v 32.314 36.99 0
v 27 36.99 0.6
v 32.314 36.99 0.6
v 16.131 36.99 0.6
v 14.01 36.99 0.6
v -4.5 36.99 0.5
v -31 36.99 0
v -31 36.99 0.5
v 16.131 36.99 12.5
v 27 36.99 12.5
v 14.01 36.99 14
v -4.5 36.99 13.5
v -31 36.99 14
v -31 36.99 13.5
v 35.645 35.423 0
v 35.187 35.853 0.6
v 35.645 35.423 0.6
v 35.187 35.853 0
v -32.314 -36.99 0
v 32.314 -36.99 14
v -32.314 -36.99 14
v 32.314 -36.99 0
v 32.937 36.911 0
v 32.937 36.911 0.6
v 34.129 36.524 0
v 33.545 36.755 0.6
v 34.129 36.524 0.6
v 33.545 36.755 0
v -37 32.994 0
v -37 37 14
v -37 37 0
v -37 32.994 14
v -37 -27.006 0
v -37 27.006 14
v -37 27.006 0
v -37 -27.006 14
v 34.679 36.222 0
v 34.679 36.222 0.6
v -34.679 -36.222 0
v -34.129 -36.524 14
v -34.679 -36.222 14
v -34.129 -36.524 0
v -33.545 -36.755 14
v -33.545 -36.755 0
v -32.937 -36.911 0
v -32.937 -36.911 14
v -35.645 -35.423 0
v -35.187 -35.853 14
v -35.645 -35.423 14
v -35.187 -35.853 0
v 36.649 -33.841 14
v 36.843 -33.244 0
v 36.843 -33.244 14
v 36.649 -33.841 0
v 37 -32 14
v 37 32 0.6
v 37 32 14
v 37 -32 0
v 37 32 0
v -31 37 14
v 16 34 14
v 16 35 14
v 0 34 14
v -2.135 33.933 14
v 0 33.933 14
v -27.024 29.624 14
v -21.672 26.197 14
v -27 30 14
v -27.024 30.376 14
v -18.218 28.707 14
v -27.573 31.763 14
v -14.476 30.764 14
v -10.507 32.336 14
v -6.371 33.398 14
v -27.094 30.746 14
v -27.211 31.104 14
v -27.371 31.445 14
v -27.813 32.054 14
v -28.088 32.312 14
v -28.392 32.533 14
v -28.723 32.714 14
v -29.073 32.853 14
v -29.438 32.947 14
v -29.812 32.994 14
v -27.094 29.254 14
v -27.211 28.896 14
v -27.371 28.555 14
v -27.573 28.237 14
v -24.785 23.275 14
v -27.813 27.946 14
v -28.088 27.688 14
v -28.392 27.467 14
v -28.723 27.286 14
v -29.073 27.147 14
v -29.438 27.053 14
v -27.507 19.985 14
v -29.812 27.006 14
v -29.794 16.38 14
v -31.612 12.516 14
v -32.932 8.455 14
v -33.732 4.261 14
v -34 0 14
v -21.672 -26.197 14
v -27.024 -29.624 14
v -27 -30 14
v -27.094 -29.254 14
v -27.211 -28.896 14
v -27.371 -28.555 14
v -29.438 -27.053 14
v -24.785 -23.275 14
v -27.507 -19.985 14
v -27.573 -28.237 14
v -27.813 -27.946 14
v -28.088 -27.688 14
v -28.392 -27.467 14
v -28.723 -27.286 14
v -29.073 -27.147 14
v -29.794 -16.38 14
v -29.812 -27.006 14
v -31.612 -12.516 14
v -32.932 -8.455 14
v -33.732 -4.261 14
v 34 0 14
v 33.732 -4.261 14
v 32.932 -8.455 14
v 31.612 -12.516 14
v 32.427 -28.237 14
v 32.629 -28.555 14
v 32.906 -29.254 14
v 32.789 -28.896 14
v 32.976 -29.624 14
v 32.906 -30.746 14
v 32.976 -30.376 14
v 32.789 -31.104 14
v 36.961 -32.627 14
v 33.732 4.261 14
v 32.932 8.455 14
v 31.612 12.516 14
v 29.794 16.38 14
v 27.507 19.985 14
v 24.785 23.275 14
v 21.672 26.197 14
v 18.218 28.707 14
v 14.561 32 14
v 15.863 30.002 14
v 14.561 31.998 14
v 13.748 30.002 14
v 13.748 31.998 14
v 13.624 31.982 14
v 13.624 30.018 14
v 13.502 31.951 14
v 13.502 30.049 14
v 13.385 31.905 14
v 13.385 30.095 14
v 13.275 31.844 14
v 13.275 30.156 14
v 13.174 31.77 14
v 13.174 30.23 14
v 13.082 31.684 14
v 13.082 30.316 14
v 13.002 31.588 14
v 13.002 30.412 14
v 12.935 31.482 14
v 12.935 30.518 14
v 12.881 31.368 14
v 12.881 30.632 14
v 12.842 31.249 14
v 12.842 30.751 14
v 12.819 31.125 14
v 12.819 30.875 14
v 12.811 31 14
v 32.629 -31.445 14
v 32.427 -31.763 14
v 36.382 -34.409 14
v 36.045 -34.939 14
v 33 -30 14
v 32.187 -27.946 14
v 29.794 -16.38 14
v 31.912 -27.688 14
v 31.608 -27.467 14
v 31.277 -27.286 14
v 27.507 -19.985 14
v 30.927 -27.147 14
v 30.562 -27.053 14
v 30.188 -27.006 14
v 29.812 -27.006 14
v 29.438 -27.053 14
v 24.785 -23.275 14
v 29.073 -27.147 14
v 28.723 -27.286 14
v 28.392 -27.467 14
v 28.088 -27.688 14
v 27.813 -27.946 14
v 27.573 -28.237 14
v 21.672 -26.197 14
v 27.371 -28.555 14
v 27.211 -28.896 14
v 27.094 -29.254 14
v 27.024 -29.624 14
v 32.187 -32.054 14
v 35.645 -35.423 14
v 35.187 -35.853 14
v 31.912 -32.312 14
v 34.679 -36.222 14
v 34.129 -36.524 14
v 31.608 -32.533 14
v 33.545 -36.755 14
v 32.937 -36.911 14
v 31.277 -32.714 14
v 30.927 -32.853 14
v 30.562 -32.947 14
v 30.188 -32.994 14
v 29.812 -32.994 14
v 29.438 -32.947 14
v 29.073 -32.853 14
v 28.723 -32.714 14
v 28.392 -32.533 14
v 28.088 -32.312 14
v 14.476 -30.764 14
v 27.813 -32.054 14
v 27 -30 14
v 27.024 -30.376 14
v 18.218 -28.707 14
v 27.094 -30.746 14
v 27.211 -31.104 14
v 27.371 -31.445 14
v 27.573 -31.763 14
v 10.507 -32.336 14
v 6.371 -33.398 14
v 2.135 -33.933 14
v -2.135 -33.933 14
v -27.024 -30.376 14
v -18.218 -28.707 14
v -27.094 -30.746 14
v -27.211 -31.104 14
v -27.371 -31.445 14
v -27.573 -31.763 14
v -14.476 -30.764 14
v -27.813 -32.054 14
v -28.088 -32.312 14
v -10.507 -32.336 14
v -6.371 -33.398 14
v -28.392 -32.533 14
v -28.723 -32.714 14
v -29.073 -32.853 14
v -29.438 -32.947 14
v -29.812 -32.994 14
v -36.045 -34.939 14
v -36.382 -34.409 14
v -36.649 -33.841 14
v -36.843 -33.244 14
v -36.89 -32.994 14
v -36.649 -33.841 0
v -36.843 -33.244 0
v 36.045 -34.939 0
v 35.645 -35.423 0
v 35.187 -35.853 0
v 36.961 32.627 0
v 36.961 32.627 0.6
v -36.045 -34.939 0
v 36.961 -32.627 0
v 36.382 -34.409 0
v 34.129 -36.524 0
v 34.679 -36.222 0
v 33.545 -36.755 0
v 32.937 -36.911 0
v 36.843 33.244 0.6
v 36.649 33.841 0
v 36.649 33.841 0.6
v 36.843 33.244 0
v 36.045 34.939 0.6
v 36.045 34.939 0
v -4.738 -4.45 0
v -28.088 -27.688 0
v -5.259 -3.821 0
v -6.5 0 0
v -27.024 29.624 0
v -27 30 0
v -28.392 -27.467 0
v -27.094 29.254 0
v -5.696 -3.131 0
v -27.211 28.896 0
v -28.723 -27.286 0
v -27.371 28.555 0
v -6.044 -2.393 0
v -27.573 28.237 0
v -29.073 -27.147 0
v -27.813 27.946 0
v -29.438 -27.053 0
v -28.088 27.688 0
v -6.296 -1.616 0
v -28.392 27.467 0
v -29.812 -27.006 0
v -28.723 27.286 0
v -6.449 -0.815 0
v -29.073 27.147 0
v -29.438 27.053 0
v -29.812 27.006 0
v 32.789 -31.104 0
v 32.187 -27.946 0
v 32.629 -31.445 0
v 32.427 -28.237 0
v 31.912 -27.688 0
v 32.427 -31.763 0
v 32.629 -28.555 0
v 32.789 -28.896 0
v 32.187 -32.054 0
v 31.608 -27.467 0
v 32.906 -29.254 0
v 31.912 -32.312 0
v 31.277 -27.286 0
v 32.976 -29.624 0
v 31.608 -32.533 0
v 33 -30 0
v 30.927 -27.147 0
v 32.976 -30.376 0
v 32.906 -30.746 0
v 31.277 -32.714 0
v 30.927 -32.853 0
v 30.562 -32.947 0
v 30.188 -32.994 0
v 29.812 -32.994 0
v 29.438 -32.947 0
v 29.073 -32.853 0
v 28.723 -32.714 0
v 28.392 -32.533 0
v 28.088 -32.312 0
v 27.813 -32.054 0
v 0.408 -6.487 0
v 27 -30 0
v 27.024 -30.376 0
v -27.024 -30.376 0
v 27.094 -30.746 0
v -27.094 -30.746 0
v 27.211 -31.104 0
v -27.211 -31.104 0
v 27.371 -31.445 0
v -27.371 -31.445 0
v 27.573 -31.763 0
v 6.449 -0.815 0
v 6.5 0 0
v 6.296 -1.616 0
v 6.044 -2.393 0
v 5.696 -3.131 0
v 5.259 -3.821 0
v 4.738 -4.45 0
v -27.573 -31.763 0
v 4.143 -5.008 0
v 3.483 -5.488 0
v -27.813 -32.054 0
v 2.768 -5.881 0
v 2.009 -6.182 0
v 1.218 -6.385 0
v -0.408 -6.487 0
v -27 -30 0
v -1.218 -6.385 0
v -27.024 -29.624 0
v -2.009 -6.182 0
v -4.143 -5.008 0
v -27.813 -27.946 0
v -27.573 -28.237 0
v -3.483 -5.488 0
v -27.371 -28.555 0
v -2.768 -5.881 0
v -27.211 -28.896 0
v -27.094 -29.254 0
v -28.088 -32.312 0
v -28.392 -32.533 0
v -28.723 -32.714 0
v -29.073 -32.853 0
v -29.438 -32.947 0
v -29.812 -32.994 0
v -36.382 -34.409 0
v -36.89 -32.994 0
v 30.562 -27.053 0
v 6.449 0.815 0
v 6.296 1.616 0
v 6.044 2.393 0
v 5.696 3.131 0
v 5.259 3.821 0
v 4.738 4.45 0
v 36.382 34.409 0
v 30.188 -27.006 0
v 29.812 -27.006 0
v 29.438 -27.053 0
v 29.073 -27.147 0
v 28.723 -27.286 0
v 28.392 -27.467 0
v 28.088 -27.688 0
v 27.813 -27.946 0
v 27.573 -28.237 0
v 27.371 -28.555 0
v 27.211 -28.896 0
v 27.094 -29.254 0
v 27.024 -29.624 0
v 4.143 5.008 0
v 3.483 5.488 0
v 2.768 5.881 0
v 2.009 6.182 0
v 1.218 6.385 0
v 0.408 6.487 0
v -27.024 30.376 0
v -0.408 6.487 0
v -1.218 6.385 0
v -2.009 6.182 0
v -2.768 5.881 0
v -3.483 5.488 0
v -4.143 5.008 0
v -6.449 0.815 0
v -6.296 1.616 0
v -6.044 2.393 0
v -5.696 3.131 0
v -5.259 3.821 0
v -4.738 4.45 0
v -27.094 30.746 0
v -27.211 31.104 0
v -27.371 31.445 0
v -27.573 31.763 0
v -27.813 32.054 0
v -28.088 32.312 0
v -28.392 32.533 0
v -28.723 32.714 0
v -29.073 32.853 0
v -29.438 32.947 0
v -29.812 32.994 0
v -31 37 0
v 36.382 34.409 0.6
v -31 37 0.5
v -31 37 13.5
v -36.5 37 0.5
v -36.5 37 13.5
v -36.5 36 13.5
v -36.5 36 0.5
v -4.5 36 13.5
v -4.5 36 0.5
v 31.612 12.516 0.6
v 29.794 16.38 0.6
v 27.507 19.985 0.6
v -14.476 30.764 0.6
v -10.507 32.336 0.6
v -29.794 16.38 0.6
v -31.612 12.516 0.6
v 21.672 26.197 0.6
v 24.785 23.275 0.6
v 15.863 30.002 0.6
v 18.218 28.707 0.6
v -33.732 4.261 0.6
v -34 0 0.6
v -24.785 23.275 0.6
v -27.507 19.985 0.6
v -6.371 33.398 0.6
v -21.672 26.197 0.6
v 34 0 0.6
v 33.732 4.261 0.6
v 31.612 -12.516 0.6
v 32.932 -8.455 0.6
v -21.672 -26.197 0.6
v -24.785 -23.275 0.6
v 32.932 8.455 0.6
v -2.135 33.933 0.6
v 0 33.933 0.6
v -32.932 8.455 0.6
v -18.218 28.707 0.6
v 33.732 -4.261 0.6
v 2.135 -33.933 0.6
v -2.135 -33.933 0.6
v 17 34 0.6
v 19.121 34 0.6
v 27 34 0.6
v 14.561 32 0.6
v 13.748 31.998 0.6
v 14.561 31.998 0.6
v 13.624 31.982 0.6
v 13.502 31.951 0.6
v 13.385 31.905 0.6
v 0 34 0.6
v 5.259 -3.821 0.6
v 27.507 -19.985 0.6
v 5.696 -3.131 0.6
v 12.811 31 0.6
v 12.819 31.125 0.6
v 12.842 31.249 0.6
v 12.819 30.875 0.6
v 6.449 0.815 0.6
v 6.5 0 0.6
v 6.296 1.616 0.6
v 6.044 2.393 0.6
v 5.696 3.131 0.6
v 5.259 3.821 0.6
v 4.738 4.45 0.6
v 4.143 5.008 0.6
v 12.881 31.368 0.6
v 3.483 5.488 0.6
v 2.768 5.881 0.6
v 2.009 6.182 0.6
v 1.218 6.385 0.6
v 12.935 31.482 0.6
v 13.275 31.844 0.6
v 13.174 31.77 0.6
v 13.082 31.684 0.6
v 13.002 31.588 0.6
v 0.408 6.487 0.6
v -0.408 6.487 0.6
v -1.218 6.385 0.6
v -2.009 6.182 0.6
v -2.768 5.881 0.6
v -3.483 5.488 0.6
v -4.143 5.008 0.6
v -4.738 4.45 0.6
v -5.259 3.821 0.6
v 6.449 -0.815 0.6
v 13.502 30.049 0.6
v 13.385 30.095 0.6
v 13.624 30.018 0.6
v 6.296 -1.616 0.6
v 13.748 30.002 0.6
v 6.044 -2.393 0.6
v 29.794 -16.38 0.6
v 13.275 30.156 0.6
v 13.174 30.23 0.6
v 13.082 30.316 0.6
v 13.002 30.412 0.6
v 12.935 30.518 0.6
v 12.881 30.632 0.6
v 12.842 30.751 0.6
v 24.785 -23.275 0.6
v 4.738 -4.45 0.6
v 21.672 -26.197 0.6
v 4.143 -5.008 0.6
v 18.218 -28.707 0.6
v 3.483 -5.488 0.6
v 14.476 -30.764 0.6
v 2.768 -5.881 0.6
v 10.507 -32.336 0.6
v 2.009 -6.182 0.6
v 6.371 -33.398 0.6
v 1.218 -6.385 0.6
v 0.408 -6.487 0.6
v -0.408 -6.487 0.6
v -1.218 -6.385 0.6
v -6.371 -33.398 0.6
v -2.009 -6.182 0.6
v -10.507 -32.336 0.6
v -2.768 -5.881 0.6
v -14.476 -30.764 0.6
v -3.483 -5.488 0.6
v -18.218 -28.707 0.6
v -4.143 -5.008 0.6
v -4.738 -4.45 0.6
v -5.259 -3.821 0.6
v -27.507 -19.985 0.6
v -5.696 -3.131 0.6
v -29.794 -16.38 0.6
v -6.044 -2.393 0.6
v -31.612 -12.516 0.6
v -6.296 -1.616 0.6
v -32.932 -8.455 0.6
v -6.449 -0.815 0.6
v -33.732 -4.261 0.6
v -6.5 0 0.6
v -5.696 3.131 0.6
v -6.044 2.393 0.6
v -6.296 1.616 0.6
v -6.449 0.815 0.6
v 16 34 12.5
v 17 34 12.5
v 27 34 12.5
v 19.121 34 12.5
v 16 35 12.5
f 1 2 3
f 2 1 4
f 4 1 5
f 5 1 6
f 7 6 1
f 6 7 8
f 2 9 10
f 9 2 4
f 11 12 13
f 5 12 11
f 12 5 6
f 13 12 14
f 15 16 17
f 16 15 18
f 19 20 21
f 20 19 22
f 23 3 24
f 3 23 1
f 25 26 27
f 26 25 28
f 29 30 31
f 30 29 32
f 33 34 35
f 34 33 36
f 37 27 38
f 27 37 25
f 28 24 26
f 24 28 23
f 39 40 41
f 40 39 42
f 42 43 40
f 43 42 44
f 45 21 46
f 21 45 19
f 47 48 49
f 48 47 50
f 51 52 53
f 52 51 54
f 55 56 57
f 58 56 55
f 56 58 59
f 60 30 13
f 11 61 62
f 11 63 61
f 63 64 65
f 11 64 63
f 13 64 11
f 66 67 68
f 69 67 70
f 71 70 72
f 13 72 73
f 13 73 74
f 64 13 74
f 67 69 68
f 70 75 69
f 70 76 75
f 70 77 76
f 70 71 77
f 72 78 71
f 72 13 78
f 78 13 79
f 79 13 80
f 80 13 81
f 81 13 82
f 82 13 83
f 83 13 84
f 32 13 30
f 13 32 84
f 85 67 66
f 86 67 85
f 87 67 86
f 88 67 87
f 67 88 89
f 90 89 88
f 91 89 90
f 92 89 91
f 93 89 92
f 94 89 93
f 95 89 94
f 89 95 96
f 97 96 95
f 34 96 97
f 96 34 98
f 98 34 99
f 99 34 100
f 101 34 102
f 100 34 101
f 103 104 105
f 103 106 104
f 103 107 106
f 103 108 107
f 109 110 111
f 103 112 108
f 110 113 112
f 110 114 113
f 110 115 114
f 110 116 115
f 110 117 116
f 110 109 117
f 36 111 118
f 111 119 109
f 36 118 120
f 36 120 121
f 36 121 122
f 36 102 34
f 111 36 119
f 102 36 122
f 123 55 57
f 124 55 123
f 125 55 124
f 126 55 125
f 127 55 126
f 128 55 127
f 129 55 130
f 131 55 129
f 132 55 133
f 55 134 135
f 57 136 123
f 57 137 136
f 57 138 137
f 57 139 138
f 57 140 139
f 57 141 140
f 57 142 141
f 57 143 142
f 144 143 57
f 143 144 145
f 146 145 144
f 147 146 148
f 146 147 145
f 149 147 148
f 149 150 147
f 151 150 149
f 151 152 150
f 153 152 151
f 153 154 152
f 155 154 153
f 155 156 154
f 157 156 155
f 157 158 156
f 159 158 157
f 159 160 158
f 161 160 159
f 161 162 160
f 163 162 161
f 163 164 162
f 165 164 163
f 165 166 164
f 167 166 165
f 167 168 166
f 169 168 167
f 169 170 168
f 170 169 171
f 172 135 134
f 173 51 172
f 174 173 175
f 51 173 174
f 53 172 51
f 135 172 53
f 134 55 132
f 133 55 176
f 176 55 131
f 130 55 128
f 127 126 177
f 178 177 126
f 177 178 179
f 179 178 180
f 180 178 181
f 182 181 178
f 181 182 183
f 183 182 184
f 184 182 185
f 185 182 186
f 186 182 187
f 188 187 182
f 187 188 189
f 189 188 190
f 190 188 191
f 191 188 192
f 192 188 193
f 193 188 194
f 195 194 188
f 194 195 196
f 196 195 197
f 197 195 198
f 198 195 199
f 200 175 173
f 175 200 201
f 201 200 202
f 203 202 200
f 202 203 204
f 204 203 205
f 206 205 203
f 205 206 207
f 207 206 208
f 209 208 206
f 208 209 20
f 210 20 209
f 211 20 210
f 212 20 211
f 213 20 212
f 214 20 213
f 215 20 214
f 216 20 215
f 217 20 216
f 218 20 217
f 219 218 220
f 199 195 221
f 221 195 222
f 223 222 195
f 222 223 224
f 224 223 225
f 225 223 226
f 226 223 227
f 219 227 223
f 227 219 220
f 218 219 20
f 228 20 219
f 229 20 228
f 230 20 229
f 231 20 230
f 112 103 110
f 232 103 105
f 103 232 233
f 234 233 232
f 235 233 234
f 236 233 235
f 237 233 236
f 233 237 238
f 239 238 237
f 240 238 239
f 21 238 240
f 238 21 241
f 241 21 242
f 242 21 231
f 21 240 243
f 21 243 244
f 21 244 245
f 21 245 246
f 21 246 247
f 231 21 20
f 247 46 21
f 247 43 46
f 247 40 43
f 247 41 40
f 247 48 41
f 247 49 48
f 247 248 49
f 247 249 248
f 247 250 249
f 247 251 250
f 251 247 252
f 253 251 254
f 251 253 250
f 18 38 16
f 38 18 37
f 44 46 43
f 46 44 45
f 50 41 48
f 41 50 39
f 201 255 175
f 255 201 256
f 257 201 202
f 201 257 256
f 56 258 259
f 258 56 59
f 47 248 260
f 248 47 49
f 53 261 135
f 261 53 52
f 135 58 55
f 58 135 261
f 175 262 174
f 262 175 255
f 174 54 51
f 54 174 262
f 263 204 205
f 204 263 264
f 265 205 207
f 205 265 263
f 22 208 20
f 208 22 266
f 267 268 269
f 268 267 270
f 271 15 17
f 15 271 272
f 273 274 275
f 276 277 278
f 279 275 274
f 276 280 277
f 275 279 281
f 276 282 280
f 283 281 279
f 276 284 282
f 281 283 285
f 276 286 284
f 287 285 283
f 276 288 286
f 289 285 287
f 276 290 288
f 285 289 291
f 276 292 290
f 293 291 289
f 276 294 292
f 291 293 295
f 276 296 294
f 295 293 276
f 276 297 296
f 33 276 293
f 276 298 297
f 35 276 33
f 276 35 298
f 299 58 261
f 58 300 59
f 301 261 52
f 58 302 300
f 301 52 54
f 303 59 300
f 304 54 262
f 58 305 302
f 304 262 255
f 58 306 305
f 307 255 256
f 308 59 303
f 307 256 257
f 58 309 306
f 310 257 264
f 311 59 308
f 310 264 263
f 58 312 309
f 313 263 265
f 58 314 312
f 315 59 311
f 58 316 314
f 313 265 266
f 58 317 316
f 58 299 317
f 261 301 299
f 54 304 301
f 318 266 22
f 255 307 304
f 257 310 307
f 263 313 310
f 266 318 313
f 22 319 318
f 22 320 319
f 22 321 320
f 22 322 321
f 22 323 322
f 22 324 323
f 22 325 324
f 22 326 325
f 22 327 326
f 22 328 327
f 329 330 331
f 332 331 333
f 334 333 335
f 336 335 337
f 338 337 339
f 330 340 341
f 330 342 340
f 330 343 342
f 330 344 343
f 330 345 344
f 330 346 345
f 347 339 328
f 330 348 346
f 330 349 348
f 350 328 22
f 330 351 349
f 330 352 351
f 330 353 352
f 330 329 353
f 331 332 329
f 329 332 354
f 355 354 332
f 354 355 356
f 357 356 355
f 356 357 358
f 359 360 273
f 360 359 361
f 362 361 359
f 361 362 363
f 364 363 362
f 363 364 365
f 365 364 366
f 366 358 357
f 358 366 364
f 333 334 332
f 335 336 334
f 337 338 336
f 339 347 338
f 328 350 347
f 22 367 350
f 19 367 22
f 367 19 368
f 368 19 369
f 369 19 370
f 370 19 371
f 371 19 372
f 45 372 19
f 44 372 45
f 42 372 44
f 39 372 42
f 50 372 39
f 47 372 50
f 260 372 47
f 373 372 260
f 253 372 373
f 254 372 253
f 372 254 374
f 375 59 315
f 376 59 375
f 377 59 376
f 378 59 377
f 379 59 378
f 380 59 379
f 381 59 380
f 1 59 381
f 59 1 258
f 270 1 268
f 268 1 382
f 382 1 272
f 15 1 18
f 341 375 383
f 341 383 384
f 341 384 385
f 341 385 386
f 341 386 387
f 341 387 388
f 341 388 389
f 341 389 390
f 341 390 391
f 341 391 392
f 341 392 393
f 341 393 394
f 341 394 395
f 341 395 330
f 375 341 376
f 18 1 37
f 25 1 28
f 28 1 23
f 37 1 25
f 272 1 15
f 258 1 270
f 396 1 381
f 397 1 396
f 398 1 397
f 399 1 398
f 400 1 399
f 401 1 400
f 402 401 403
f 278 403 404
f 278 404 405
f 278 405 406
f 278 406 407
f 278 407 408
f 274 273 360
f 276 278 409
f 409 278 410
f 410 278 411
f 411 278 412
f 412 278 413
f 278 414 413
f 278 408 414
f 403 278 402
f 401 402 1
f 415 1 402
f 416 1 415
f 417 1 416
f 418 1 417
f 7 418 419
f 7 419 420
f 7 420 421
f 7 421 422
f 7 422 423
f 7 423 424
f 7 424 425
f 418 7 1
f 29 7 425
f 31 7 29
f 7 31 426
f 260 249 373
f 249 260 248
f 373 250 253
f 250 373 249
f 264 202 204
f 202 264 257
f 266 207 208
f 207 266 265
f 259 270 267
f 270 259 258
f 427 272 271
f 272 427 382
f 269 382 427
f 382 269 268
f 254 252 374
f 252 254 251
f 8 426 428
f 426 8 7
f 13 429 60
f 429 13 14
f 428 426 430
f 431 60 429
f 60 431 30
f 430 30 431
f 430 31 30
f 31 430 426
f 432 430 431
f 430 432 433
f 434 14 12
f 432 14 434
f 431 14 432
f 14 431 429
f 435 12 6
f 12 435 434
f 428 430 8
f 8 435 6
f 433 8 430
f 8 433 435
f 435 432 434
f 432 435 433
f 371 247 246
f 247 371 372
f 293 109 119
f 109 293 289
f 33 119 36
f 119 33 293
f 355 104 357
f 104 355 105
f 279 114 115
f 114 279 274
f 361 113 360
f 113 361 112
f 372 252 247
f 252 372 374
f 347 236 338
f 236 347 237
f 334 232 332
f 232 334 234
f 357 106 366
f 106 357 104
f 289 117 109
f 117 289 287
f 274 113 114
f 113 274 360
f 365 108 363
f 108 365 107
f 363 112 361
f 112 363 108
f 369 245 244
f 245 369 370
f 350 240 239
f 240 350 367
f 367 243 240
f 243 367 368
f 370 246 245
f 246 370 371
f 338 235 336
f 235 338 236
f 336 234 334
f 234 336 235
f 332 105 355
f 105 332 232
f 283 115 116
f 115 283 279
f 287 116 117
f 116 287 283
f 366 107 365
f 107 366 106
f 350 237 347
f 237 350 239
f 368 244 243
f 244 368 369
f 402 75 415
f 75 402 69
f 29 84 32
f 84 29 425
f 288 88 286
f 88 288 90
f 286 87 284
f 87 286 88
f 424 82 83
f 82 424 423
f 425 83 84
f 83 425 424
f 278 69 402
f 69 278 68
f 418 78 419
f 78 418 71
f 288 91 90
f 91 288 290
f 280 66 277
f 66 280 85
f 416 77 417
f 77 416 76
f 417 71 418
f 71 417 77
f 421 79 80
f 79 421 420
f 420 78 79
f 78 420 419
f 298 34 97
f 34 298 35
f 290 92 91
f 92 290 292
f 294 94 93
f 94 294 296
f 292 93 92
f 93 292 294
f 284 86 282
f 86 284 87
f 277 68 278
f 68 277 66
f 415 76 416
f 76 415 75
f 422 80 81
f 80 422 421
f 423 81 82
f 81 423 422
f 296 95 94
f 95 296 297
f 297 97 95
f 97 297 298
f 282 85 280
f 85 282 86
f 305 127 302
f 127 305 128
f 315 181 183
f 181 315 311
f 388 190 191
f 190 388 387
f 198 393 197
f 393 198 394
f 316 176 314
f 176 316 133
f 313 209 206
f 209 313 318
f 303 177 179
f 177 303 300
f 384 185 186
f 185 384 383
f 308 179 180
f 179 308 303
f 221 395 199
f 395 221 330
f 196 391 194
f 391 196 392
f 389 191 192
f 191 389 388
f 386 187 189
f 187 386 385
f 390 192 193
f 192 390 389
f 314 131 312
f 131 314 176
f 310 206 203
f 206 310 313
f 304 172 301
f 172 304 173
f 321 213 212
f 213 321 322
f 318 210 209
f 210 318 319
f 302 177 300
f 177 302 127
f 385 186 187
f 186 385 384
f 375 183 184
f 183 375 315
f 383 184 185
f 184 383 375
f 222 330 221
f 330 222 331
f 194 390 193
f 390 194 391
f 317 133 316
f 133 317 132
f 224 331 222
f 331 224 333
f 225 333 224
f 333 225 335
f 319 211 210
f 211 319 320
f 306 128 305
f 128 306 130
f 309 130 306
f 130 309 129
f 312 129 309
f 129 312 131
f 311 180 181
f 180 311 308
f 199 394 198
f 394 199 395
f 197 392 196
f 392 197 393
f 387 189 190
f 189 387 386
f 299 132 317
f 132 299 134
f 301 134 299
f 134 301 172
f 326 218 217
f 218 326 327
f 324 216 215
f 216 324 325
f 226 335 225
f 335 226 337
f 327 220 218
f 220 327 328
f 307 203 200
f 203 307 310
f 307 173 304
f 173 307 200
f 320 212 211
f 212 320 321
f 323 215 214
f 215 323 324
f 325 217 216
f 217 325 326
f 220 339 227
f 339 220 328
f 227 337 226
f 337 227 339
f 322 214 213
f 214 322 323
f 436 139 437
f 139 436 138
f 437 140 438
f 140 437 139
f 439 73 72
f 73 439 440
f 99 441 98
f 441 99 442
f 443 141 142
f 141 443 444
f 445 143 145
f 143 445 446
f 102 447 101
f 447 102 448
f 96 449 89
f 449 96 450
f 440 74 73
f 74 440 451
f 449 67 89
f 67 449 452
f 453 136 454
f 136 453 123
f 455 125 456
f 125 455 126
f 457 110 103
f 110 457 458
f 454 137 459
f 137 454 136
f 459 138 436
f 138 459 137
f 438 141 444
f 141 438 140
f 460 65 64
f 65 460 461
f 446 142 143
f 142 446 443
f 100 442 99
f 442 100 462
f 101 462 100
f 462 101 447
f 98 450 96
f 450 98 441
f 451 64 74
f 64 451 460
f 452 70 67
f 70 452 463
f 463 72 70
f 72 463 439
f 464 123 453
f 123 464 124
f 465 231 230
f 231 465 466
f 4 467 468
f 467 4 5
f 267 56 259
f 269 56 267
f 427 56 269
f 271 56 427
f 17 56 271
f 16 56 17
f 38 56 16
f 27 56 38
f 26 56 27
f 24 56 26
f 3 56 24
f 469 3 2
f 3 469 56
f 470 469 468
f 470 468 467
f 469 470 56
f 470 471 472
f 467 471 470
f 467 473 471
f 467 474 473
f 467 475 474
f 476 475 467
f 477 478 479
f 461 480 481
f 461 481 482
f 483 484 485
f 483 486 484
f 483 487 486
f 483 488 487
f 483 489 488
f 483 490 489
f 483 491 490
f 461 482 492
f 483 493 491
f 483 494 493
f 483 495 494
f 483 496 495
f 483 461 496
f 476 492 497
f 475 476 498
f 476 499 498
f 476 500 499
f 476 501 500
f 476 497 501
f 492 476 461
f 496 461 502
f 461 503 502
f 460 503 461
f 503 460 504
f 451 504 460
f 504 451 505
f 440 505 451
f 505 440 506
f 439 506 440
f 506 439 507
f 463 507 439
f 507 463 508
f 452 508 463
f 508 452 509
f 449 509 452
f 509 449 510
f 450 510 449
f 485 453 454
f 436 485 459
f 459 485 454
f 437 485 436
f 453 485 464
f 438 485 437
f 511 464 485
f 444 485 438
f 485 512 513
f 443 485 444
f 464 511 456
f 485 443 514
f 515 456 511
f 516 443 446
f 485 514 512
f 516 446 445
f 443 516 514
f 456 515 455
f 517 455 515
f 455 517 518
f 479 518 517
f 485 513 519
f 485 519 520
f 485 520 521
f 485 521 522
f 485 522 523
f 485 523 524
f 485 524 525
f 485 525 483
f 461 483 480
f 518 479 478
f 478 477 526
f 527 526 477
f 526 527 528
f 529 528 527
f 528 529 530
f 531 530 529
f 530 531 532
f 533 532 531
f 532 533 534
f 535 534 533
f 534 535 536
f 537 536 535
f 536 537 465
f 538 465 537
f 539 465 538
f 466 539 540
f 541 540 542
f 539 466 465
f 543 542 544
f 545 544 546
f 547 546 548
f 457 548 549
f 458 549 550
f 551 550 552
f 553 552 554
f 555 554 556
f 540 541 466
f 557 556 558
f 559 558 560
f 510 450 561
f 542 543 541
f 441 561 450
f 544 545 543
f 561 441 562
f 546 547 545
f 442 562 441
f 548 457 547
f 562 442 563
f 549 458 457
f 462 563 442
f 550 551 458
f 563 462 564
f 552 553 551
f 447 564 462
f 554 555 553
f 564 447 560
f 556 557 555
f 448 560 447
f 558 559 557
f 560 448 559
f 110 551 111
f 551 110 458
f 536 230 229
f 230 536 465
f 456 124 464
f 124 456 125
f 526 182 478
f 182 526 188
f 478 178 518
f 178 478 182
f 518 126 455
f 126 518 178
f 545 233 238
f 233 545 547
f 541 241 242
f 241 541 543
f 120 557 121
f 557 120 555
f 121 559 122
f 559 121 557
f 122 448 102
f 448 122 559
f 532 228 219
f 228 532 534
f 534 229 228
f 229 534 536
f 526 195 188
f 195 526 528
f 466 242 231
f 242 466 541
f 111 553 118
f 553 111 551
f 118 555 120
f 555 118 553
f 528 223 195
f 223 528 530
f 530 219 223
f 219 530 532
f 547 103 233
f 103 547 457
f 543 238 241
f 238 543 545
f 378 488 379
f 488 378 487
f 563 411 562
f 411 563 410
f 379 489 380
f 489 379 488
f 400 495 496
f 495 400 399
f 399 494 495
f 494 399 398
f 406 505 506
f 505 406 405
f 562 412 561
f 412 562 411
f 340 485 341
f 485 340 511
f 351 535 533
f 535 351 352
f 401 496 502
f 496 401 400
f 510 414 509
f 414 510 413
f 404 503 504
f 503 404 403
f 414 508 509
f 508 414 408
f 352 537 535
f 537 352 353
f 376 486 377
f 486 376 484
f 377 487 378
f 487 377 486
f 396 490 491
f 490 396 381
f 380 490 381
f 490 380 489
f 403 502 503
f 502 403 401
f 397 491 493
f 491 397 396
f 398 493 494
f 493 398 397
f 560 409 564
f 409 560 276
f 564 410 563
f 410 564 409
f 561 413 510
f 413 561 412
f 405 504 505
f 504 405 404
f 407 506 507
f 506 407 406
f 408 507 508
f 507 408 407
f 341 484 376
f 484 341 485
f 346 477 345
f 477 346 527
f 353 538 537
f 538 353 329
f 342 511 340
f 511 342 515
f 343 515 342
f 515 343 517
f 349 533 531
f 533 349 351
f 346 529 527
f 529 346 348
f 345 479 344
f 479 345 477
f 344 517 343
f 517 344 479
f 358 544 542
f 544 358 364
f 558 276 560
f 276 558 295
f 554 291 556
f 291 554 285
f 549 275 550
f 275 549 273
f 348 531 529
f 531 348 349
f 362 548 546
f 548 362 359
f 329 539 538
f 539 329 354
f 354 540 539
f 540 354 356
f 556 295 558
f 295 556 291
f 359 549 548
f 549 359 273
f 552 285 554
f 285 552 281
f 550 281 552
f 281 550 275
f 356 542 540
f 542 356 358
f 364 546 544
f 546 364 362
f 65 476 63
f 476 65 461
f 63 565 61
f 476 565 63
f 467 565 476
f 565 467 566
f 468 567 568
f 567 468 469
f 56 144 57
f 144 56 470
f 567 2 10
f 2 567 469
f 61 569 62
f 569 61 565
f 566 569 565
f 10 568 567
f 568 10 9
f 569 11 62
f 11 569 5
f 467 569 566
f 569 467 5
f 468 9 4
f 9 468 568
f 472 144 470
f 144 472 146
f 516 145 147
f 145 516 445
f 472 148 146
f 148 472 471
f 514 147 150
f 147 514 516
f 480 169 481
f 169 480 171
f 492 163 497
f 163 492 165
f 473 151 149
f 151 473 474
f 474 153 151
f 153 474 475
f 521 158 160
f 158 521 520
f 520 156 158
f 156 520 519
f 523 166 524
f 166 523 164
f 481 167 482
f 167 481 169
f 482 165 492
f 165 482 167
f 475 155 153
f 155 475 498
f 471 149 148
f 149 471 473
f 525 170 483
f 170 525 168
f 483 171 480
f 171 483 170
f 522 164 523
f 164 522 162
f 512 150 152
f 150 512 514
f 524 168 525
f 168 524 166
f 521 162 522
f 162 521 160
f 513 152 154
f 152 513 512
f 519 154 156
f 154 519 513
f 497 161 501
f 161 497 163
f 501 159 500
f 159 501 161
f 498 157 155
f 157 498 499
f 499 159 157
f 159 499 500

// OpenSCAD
$fn = 50;


union() {
	difference() {
		union() {
			translate(v = [0, 0, 0]) {
				rotate(a = [0, 0, 0]) {
					hull() {
						translate(v = [-32.0000000000, 32.0000000000, 0]) {
							rotate(a = [0, 0, 0]) {
								translate(v = [0, 0, 0]) {
									rotate(a = [0, 0, 0]) {
										cylinder(h = 14, r = 5);
									}
								}
							}
						}
						translate(v = [32.0000000000, 32.0000000000, 0]) {
							rotate(a = [0, 0, 0]) {
								translate(v = [0, 0, 0]) {
									rotate(a = [0, 0, 0]) {
										cylinder(h = 14, r = 5);
									}
								}
							}
						}
						translate(v = [-32.0000000000, -32.0000000000, 0]) {
							rotate(a = [0, 0, 0]) {
								translate(v = [0, 0, 0]) {
									rotate(a = [0, 0, 0]) {
										cylinder(h = 14, r = 5);
									}
								}
							}
						}
						translate(v = [32.0000000000, -32.0000000000, 0]) {
							rotate(a = [0, 0, 0]) {
								translate(v = [0, 0, 0]) {
									rotate(a = [0, 0, 0]) {
										cylinder(h = 14, r = 5);
									}
								}
							}
						}
					}
				}
			}
			translate(v = [-37.0000000000, 31.0000000000, 0]) {
				rotate(a = [0, 0, 0]) {
					cube(size = [6, 6, 14]);
				}
			}
		}
		union() {
			#translate(v = [-36.5000000000, 36.0000000000, 0.5000000000]) {
				rotate(a = [0, 0, 0]) {
					cube(size = [32, 1, 13.0000000000]);
				}
			}
			translate(v = [-37.5000000000, -30.0000000000, -125]) {
				rotate(a = [0, 0, 0]) {
					hull() {
						translate(v = [7.5000000000, 0, 0]) {
							rotate(a = [0, 0, 0]) {
								translate(v = [0, 0, 0]) {
									rotate(a = [0, 0, 0]) {
										cylinder(h = 250, r = 3.0000000000);
									}
								}
							}
						}
						translate(v = [-7.5000000000, 0, 0]) {
							rotate(a = [0, 0, 0]) {
								translate(v = [0, 0, 0]) {
									rotate(a = [0, 0, 0]) {
										cylinder(h = 250, r = 3.0000000000);
									}
								}
							}
						}
					}
				}
			}
			translate(v = [-37.5000000000, 30.0000000000, -125]) {
				rotate(a = [0, 0, 0]) {
					hull() {
						translate(v = [7.5000000000, 0, 0]) {
							rotate(a = [0, 0, 0]) {
								translate(v = [0, 0, 0]) {
									rotate(a = [0, 0, 0]) {
										cylinder(h = 250, r = 3.0000000000);
									}
								}
							}
						}
						translate(v = [-7.5000000000, 0, 0]) {
							rotate(a = [0, 0, 0]) {
								translate(v = [0, 0, 0]) {
									rotate(a = [0, 0, 0]) {
										cylinder(h = 250, r = 3.0000000000);
									}
								}
							}
						}
					}
				}
			}
			translate(v = [30.0000000000, -30.0000000000, -125.0000000000]) {
				rotate(a = [0, 0, 0]) {
					cylinder(h = 250, r = 3.0000000000);
				}
			}
			translate(v = [0, 0, 0.6000000000]) {
				rotate(a = [0, 0, 0]) {
					cylinder(h = 16.4000000000, r = 34.0000000000);
				}
			}
			translate(v = [0, 0, -7.0000000000]) {
				rotate(a = [0, 0, 0]) {
					cylinder(h = 14, r = 6.5000000000);
				}
			}
			translate(v = [0.0000000000, 32.0000000000, 0.6000000000]) {
				rotate(a = [0, 0, 0]) {
					cube(size = [37.0000000000, 2, 16.4000000000]);
				}
			}
			translate(v = [27.0000000000, 32.0000000000, 0.6000000000]) {
				rotate(a = [0, 0, 0]) {
					cube(size = [10, 5, 16.4000000000]);
				}
			}
			translate(v = [16.0000000000, 32.0000000000, 12.5000000000]) {
				rotate(a = [0, 0, 0]) {
					cube(size = [21, 5, 1.5000000000]);
				}
			}
			translate(v = [13.2500000000, 37.7500000000, 0.6000000000]) {
				rotate(a = [0, 0, -45]) {
					cube(size = [7.5000000000, 1.5000000000, 16.4000000000]);
				}
			}
			translate(v = [7.0610000000, 30.0000000000, 0.6000000000]) {
				rotate(a = [0, 0, 0]) {
					cube(size = [7.5000000000, 2, 13.4000000000]);
				}
			}
		}
	}
	union() {
		translate(v = [16.3110000000, 31.0000000000, 0]) {
			rotate(a = [0, 0, 0]) {
				hull() {
					translate(v = [2.5000000000, 0, 0]) {
						rotate(a = [0, 0, 0]) {
							#translate(v = [0, 0, 0]) {
								rotate(a = [0, 0, 0]) {
									cylinder(h = 14, r = 1.0000000000);
								}
							}
						}
					}
					translate(v = [-2.5000000000, 0, 0]) {
						rotate(a = [0, 0, 0]) {
							#translate(v = [0, 0, 0]) {
								rotate(a = [0, 0, 0]) {
									cylinder(h = 14, r = 1.0000000000);
								}
							}
						}
					}
				}
			}
		}
	}
}
